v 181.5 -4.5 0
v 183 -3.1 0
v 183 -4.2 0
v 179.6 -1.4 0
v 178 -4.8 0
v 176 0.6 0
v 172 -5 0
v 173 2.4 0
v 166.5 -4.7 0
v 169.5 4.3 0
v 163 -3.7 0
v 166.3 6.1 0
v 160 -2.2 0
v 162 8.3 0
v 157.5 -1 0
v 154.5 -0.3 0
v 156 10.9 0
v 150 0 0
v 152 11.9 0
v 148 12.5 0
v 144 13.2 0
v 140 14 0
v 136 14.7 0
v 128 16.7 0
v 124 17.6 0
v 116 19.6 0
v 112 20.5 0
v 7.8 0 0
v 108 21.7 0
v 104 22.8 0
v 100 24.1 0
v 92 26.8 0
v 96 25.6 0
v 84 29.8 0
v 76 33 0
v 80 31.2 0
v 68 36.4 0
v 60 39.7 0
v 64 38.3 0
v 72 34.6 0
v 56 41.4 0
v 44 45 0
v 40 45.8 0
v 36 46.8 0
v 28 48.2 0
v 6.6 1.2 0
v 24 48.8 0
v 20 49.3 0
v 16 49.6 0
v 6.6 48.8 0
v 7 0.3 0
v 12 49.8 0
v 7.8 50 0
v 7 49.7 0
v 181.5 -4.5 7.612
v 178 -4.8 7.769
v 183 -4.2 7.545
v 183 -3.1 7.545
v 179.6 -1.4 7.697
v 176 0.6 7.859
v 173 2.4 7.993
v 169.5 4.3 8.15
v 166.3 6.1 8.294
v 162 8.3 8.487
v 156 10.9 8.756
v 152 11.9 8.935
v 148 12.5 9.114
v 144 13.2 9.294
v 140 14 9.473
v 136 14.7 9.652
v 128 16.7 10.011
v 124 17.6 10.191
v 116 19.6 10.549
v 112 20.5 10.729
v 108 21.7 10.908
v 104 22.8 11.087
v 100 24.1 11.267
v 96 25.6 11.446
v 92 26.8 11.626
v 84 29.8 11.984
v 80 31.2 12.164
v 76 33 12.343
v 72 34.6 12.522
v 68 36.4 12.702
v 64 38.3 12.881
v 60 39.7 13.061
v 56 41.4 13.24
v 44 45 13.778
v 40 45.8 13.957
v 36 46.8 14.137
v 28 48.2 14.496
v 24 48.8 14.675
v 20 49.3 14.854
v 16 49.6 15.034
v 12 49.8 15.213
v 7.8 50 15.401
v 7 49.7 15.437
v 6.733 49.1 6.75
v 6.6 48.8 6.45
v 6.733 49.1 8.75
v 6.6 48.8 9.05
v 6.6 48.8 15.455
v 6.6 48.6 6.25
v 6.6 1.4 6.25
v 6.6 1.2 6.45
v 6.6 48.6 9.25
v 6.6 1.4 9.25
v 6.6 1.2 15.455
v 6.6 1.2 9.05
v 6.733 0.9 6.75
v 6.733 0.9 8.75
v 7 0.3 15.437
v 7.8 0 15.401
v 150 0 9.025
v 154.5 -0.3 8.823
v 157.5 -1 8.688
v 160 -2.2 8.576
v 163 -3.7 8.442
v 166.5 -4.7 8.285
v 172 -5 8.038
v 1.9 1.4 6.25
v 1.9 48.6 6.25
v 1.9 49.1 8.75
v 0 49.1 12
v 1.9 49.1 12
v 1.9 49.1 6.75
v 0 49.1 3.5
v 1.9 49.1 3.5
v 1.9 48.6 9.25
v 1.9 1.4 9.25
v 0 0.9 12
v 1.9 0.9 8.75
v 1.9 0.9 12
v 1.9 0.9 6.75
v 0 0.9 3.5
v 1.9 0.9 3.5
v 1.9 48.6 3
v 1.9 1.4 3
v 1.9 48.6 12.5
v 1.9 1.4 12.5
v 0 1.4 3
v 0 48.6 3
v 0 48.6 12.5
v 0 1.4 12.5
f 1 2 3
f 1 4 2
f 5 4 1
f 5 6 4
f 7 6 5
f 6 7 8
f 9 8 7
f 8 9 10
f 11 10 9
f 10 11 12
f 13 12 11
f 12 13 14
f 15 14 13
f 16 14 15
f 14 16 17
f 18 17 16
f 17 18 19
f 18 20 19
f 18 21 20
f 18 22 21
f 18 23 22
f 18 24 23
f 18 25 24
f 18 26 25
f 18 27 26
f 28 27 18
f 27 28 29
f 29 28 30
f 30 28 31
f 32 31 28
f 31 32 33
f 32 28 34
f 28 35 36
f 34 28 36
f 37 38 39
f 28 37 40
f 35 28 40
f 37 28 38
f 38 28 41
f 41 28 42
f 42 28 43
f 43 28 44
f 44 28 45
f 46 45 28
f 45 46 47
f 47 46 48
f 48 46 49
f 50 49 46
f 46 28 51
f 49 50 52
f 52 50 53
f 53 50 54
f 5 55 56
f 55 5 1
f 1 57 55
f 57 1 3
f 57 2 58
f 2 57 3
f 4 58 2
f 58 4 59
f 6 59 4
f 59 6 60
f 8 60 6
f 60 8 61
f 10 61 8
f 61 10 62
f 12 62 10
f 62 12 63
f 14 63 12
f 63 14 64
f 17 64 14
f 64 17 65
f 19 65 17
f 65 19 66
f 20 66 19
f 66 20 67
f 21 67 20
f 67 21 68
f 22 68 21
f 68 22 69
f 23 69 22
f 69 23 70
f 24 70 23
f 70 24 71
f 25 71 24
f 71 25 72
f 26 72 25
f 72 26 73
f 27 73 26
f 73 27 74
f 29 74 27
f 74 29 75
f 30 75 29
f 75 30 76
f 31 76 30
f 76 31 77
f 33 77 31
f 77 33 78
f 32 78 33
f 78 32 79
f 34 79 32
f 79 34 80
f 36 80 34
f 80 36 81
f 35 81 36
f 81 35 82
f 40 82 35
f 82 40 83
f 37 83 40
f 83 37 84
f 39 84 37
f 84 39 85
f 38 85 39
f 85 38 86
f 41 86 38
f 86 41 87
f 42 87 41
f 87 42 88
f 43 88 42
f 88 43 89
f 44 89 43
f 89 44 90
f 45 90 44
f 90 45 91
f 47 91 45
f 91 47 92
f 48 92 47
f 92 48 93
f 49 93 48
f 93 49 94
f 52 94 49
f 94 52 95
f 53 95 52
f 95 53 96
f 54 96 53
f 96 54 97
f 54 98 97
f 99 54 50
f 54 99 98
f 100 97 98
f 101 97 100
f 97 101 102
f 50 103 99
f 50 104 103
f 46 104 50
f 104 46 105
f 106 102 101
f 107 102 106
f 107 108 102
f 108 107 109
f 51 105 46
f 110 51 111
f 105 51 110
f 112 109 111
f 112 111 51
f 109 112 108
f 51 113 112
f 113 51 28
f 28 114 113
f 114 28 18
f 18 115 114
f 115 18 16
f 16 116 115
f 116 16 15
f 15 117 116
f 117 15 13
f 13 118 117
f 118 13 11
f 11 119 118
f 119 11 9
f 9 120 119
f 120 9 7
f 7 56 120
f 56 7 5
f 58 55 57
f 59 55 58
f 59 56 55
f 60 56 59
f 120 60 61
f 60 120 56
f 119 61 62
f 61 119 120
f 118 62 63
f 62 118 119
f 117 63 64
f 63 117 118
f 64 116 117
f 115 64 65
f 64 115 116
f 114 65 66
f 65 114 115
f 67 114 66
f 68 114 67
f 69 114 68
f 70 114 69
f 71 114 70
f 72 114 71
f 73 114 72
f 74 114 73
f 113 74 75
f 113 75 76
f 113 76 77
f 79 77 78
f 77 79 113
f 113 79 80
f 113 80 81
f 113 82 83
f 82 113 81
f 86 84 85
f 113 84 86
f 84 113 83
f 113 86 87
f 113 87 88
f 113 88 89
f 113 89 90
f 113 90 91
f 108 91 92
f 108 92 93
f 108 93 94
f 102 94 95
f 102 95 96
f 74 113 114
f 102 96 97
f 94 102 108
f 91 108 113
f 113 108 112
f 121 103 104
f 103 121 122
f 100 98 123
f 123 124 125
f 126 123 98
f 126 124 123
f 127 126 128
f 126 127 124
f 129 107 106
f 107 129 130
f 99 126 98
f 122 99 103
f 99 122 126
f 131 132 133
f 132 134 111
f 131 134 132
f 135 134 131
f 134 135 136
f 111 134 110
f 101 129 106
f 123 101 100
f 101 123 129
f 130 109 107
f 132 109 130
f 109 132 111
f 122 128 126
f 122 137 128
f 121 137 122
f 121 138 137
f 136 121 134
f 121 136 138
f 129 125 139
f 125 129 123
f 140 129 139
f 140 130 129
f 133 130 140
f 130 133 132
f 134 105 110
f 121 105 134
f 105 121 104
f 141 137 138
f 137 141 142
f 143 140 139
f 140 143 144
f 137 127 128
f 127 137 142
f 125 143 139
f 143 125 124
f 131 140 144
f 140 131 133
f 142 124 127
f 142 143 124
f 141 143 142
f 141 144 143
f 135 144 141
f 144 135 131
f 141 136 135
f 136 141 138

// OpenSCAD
// Christmas tree leg: replacement for a missing leg (v2)
// Units: mm. Built from photos of a good leg next to a tape measure.
//
// Axes:  x = along the leg (0 = outer face of the T-rail, x = total_length = floor tip)
//        y = across the leg (0 = straight bottom edge, plug_width = top corner of plug)
//        z = thickness (0 = flat face that sits on the print bed)
//
// What v2 changed from v1 (after measuring the photos):
//   * The "T" is a T-shaped RAIL that runs across the whole plug end (about 48.5 mm),
//     not a small 18 mm tab. Seen from the side it is a lip (bar) on a thin neck (stem).
//   * Length 183 (was 190), plug width 50 (was 48), plug thickness 15.5 (was 12),
//     tip thickness 7.5 (was 5), width at halfway about 27 (was 32).
//   * The outline was traced from the top-view photo, so the curved top edge and the
//     downturned floor tip follow the real leg instead of a straight-line guess.

// ---------------- measured values ----------------
total_length    = 183;    // T-rail outer face to floor tip
plug_width      = 50;     // width of the body at the plug end
plug_thickness  = 15.5;   // body thickness at the plug end
tip_thickness   = 7.5;    // body thickness at the floor tip

// T-rail on the plug end face (cross-section is a T when you look at the side edge)
rail_width      = 48.5;   // how far the rail runs across the plug (slightly less than plug_width)
lip_thickness   = 9.8;    // the T's crossbar, measured in the thickness (z) direction
lip_length      = 2.2;    // the crossbar's depth along x
neck_thickness  = 3.3;    // the T's stem, in z
neck_length     = 4.4;    // the stem's length along x (gap between lip and body).
                          // Read 3.0-4.8 across photos; kept on the long side so the
                          // base's slot wall is sure to fit behind the lip.

// ---------------- fit ----------------
// The T-rail slides into a T-slot in the tree base. These print slightly smaller
// (and the neck slightly longer) so it goes in. Too tight: 0.5. Too loose: 0.15.
clearance       = 0.3;

// ---------------- derived print sizes ----------------
lip_th_p    = lip_thickness  - clearance;
neck_th_p   = neck_thickness - clearance;
lip_len_p   = lip_length     - clearance;
neck_len_p  = neck_length    + clearance;   // longer, so the base's slot wall fits behind the lip
rail_w_p    = rail_width     - clearance;
body_start  = lip_length + neck_length;     // 6.6: the body starts here either way
z_mid       = plug_thickness / 2;           // rail is centred on the plug's thickness
chamfer     = 0.5;                          // eases the rail ends into the slot

// Export: openscad -o christmas-tree-leg.stl christmas-tree-leg.scad
//         openscad -D 'part="fit_test"' -o fit-test-plug-end.stl christmas-tree-leg.scad

// ---------------- outline (top view), traced from the photo ----------------
outline = [
    // straight bottom edge (rests against nothing; runs plug -> tip)
    [body_start, 1.2], [body_start + 0.4, 0.3], [body_start + 1.2, 0],
    [150, 0], [154.5, -0.3], [157.5, -1.0], [160, -2.2], [163, -3.7],
    [166.5, -4.7], [172, -5.0], [178, -4.8], [181.5, -4.5],
    // floor tip: small flat
    [183, -4.2], [183, -3.1],
    // curved top edge, tip -> plug
    [179.6, -1.4], [176, 0.6], [173, 2.4], [169.5, 4.3], [166.3, 6.1],
    [162, 8.3], [159, 9.6],
    [156, 10.9], [152, 11.9], [148, 12.5], [144, 13.2], [140, 14.0], [136, 14.7],
    [132, 15.7], [128, 16.7], [124, 17.6], [120, 18.6], [116, 19.6], [112, 20.5],
    [108, 21.7], [104, 22.8], [100, 24.1], [96, 25.6], [92, 26.8], [88, 28.3],
    [84, 29.8], [80, 31.2], [76, 33.0], [72, 34.6], [68, 36.4], [64, 38.3],
    [60, 39.7], [56, 41.4], [52, 42.6], [48, 43.8], [44, 45.0], [40, 45.8],
    [36, 46.8], [32, 47.5], [28, 48.2], [24, 48.8], [20, 49.3], [16, 49.6],
    [12, 49.8], [body_start + 1.2, plug_width], [body_start + 0.4, plug_width - 0.3],
    [body_start, plug_width - 1.2]
];

// ---------------- parts ----------------
module body() {
    intersection() {
        linear_extrude(height = plug_thickness) polygon(outline);
        // thickness wedge: full thickness at the plug, thinner at the tip (top face slopes)
        translate([0, 60, 0]) rotate([90, 0, 0])
            linear_extrude(height = 80)
                polygon([[body_start - 1, 0], [total_length + 1, 0],
                         [total_length + 1, tip_thickness],
                         [body_start - 1, plug_thickness]]);
    }
}

// a box along y with chamfered ends (x0..x1, centred in z on z_mid)
module rail_piece(x0, x1, th) {
    y0 = (plug_width - rail_w_p) / 2;
    hull() {
        translate([x0, y0 + chamfer, z_mid - th/2]) cube([x1 - x0, rail_w_p - 2*chamfer, th]);
        translate([x0, y0, z_mid - th/2 + chamfer]) cube([x1 - x0, rail_w_p, th - 2*chamfer]);
    }
}

module t_rail() {
    // neck (stem): from the back of the lip into the body (0.5 mm overlap so it fuses)
    rail_piece(lip_len_p, body_start + 0.5, neck_th_p);
    // lip (crossbar): outer face at x = 0, back face where the neck starts
    rail_piece(body_start - neck_len_p - lip_len_p, body_start - neck_len_p, lip_th_p);
}

module leg() { union() { body(); t_rail(); } }

// part = "full": the whole leg.
// part = "fit_test": only the first 15 mm (the T-rail + a bit of body), about 7 g,
//                    to test-fit in the tree base before printing the whole leg.
part = "full";
if (part == "fit_test")
    intersection() { leg(); translate([-1, -10, -1]) cube([16, 80, 30]); }
else
    leg();
